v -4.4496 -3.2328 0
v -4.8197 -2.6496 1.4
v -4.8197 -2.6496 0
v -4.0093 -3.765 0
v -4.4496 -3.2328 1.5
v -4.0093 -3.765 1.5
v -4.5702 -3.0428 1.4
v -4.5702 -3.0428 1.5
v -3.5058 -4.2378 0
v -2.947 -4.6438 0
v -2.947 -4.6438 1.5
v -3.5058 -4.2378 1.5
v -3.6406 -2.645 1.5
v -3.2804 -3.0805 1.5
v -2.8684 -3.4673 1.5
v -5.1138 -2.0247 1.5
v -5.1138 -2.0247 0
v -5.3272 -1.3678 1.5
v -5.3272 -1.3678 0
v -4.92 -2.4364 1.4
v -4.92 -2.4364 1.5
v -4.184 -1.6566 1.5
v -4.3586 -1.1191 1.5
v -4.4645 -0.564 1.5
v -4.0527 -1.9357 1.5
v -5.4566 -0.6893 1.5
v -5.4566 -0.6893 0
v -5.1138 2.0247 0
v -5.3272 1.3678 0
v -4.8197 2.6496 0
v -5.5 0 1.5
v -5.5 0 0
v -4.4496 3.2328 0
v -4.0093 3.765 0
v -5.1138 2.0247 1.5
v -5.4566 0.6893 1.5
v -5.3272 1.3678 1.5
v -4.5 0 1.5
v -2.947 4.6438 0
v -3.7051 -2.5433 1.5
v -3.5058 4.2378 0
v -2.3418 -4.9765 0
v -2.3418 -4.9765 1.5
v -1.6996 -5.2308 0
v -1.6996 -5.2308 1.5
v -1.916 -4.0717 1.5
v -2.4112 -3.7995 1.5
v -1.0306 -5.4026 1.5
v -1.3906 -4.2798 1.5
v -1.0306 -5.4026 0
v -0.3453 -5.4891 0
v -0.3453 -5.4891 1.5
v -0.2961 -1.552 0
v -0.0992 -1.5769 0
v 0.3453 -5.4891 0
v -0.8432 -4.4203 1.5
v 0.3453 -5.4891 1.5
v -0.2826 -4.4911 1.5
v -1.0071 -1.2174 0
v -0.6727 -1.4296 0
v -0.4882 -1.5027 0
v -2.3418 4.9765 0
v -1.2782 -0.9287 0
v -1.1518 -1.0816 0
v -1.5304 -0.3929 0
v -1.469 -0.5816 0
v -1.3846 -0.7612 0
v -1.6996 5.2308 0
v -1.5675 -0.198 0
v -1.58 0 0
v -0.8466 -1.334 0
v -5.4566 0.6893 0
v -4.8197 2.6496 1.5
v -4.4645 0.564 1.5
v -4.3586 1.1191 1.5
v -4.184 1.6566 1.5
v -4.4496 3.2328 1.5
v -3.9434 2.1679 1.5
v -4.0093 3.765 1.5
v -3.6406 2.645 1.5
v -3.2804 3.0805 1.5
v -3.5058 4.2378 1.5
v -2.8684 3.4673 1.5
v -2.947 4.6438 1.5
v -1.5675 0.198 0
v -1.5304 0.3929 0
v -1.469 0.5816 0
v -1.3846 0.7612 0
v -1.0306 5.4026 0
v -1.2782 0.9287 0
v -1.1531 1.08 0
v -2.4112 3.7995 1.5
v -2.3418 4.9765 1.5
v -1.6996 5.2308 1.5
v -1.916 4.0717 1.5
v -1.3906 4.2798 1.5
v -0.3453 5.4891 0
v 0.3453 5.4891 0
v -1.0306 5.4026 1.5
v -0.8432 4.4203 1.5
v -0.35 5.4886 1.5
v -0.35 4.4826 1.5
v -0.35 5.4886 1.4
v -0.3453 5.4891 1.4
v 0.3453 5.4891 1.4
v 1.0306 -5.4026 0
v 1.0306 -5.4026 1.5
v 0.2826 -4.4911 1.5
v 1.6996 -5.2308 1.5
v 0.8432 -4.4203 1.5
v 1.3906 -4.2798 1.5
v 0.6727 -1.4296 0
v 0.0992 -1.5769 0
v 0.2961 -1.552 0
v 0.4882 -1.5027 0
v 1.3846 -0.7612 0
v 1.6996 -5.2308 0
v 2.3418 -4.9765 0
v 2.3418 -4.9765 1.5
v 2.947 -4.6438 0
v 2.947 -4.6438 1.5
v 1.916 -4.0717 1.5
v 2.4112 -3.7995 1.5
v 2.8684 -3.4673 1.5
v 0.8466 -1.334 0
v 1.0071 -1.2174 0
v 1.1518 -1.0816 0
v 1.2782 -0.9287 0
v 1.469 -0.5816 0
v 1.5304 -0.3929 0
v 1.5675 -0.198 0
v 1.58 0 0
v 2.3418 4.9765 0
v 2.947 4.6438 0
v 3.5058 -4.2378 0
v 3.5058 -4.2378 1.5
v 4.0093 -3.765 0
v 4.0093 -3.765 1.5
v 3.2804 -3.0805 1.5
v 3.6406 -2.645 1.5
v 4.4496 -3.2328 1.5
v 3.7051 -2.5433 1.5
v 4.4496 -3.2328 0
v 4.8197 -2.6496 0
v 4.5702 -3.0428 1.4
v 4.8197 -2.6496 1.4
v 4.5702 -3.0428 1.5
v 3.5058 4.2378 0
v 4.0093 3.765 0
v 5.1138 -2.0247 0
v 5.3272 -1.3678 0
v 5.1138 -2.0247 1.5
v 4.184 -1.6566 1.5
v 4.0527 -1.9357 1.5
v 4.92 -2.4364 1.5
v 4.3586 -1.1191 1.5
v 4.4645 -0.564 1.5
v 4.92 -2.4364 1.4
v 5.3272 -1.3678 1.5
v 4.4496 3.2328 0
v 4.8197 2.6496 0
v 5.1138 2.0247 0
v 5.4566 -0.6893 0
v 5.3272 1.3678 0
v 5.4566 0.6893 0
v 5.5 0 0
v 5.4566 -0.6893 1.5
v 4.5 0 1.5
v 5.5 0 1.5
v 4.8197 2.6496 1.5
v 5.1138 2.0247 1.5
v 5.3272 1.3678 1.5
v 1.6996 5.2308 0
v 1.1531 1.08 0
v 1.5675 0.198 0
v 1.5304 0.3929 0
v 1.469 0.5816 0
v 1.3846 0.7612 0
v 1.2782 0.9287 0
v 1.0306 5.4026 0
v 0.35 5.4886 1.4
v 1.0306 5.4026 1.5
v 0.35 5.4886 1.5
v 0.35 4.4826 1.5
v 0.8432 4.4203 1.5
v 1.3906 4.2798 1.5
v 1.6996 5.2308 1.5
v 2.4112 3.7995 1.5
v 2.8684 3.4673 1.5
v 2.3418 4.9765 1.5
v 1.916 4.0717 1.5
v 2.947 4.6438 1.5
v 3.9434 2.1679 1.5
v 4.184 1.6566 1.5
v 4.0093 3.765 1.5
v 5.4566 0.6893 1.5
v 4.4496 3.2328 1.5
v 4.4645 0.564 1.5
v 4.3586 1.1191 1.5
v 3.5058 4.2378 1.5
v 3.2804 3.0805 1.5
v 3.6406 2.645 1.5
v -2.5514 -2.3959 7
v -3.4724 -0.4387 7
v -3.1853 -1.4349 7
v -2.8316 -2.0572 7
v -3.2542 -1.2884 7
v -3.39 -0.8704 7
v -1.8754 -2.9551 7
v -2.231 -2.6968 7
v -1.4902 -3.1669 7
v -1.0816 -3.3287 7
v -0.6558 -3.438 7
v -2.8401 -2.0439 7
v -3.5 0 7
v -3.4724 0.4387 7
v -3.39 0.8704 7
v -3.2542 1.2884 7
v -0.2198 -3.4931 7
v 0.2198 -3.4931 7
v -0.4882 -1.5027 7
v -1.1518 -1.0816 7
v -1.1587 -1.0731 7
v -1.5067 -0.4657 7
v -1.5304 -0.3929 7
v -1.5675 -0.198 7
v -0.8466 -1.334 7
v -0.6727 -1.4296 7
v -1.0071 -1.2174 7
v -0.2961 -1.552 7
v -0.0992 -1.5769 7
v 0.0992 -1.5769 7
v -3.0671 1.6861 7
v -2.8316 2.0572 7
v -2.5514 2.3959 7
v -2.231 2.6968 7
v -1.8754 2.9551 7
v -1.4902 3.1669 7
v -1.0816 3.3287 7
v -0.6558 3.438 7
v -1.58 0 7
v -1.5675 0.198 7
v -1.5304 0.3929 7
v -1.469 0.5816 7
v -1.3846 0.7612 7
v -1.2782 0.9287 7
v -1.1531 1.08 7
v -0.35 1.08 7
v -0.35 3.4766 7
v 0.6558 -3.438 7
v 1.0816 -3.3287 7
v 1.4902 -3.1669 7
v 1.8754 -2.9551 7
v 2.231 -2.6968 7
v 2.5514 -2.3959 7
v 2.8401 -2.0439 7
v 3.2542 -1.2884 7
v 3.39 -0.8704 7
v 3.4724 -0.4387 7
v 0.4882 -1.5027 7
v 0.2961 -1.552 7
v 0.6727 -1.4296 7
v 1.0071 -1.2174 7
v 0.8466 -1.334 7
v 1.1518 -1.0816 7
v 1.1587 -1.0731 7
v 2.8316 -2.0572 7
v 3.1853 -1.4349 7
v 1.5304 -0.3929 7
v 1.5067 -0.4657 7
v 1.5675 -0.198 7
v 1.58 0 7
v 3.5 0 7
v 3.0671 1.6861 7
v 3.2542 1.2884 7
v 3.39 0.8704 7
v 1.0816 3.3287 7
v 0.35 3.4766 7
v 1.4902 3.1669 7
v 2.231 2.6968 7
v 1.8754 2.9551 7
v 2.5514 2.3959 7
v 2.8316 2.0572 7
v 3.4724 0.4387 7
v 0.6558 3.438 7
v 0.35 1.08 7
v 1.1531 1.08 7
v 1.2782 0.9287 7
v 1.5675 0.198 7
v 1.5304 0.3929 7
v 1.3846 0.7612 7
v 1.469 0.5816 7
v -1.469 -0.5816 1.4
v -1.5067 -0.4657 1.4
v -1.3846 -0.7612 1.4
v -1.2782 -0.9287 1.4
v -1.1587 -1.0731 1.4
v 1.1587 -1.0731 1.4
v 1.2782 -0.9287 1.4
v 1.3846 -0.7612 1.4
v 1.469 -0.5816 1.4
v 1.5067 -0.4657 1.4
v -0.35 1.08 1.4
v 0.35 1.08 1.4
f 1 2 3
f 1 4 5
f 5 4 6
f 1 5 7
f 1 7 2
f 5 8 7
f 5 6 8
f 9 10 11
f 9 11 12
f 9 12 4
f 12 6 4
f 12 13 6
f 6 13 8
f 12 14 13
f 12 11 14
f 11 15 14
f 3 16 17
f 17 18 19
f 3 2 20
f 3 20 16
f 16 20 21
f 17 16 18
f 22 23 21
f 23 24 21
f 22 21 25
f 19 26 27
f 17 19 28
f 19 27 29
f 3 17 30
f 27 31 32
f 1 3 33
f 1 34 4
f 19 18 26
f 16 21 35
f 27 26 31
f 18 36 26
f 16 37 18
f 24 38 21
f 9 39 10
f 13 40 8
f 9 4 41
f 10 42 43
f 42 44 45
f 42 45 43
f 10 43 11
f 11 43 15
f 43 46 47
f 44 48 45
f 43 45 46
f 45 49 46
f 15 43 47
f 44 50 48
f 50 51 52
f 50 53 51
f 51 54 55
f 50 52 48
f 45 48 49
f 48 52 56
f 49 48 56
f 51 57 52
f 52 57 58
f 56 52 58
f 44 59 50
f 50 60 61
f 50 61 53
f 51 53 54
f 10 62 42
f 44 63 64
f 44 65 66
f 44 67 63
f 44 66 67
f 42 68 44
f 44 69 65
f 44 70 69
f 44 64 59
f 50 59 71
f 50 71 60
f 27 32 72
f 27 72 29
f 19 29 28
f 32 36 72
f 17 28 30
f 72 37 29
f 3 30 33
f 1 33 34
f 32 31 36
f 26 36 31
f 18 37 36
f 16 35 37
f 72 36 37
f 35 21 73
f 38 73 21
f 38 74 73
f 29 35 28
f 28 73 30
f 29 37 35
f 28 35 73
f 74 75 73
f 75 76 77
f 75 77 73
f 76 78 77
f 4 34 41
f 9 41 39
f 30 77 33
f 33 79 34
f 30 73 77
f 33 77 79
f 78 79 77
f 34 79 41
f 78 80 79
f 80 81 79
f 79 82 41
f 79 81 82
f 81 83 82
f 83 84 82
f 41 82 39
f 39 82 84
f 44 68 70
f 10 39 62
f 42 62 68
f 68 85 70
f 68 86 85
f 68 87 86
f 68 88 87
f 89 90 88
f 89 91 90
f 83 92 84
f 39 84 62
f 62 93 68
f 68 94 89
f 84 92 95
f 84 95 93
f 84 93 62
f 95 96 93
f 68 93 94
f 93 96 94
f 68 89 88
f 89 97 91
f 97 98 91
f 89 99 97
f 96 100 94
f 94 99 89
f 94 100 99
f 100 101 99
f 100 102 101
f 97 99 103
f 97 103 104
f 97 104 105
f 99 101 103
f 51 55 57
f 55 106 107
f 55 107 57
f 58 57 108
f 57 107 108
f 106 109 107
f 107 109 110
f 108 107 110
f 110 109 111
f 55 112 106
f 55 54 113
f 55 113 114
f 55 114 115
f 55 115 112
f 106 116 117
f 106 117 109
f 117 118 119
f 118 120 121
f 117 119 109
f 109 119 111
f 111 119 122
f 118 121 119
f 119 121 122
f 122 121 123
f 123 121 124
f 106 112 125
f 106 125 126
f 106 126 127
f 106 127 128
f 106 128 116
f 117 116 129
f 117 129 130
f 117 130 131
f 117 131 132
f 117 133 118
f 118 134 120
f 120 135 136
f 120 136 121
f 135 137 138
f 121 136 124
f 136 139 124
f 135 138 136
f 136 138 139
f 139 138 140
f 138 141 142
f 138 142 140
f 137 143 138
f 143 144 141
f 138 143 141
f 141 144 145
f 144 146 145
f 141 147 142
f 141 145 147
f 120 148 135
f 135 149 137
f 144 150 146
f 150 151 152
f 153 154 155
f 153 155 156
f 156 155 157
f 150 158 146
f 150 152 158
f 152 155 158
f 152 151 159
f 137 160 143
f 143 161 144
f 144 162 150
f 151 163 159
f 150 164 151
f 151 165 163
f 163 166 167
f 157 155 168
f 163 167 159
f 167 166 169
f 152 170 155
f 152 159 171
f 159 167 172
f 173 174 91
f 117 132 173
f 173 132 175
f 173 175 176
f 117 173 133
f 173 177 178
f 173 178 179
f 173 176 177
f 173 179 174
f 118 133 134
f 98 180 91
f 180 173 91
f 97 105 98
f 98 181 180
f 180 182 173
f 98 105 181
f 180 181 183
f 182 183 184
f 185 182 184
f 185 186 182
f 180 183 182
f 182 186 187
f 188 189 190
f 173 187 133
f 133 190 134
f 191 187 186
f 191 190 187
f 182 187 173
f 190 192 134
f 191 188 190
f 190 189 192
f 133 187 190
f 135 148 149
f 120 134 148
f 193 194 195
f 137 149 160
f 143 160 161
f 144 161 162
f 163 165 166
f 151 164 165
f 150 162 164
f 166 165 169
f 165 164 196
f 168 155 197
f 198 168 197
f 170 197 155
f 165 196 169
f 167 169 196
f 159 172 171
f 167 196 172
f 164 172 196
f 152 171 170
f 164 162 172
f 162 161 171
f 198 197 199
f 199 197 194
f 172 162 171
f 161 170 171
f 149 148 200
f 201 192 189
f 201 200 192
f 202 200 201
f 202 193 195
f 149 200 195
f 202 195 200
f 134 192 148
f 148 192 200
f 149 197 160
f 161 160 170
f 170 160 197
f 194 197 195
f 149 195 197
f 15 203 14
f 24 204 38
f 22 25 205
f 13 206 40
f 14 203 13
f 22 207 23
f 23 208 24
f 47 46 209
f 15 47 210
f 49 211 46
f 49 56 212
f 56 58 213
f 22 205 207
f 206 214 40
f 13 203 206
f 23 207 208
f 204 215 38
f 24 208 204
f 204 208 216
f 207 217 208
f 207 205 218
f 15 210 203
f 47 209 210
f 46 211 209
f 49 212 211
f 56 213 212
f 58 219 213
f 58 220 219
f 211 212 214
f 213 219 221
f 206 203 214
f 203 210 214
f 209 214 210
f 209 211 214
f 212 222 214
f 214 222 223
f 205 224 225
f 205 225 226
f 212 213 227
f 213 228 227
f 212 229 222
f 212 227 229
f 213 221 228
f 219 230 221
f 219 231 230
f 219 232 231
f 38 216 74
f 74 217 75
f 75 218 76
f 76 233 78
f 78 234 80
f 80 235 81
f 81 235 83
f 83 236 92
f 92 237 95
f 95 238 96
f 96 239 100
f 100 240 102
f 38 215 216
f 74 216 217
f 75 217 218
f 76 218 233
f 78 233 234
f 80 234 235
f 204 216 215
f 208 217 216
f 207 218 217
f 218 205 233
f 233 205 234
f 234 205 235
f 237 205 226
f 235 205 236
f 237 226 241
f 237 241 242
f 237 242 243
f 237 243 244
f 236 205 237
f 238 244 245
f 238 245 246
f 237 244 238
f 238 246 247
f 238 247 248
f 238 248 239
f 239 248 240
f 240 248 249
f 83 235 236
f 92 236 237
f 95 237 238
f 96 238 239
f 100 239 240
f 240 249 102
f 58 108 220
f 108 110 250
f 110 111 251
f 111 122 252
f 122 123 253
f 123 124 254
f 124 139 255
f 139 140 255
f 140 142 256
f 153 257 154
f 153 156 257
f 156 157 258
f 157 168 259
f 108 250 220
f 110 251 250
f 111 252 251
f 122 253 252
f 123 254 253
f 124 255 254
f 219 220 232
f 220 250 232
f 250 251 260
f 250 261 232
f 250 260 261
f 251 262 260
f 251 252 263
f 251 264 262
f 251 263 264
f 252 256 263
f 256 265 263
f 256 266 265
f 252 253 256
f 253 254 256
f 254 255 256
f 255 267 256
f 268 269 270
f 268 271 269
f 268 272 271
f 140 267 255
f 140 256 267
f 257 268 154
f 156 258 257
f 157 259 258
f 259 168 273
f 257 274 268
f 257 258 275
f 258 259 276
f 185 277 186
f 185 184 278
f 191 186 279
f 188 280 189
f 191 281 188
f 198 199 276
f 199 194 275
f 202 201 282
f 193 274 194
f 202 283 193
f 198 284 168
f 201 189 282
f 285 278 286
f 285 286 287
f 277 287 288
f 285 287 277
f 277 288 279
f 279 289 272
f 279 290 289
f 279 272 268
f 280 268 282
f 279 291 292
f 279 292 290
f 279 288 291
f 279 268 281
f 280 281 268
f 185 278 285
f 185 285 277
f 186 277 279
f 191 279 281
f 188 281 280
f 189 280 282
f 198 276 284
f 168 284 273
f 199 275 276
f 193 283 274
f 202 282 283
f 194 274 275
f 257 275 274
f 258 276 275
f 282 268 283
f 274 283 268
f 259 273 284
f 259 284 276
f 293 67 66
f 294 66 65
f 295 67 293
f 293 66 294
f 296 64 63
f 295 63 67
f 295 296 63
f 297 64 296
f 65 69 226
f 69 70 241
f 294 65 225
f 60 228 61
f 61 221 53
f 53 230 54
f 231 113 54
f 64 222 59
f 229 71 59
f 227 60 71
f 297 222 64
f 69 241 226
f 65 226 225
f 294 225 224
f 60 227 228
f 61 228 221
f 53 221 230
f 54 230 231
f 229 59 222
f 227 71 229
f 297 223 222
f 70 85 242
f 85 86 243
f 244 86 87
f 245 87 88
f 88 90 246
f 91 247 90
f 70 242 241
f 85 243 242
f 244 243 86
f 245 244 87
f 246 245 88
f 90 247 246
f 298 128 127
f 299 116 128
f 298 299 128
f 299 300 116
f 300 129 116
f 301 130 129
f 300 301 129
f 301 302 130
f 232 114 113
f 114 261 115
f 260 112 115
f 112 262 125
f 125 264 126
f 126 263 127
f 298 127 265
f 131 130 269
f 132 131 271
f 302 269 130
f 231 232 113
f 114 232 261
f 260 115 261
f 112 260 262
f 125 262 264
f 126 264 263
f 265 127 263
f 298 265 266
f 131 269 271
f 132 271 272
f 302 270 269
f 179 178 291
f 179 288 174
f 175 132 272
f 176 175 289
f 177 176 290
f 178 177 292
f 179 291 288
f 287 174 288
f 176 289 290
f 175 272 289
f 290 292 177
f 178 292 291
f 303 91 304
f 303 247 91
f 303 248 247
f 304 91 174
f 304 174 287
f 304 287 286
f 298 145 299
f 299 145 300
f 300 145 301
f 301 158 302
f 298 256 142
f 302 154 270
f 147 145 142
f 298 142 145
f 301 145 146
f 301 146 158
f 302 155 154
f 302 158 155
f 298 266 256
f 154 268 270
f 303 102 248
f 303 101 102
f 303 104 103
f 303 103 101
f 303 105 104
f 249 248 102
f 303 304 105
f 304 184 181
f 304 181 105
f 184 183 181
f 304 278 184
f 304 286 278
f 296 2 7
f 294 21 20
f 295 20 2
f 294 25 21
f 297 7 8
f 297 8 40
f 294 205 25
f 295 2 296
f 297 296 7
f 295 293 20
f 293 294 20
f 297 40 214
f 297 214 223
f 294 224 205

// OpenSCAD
$fn = 50;

difference() {
	union() {
		translate(v = [0, 0, -3.7]) {
			rotate(a = [0, 0, 0]) {
				difference() {
					union() {
						translate(v = [0, 0, 3.7]) {
							cylinder(h = 1.5, r = 5.5);
						}
						translate(v = [0, 0, 5.2]) {
							cylinder(h = 5.5, r1 = 4.5, r2 = 3.5);
						}
					}
					union() {
						translate(v = [0, 0, 3.6]) {
							rotate(a = [0, 0, 0]) {
								difference() {
									union() {
										cylinder(h = 7.2, r = 1.58);
									}
									union() {
										translate(v = [-6.0, 1.08, -1]) {
											cube(size = [12, 12, 9.2]);
										}
									}
								}
							}
						}
						translate(v = [0, 0, 0]) {
							rotate(a = [0, 0, 0]) {
								difference() {
									union() {
										translate(v = [-0.35, 0.0, 5.1]) {
											cube(size = [0.7, 10, 5.7]);
										}
									}
									union();
								}
							}
						}
						translate(v = [0, 0, 0]) {
							rotate(a = [0, 0, 120]) {
								difference() {
									union() {
										translate(v = [-0.35, 0.0, 5.1]) {
											cube(size = [0.7, 10, 5.7]);
										}
									}
									union();
								}
							}
						}
						translate(v = [0, 0, 0]) {
							rotate(a = [0, 0, 240]) {
								difference() {
									union() {
										translate(v = [-0.35, 0.0, 5.1]) {
											cube(size = [0.7, 10, 5.7]);
										}
									}
									union();
								}
							}
						}
					}
				}
			}
		}
	}
	union();
}
